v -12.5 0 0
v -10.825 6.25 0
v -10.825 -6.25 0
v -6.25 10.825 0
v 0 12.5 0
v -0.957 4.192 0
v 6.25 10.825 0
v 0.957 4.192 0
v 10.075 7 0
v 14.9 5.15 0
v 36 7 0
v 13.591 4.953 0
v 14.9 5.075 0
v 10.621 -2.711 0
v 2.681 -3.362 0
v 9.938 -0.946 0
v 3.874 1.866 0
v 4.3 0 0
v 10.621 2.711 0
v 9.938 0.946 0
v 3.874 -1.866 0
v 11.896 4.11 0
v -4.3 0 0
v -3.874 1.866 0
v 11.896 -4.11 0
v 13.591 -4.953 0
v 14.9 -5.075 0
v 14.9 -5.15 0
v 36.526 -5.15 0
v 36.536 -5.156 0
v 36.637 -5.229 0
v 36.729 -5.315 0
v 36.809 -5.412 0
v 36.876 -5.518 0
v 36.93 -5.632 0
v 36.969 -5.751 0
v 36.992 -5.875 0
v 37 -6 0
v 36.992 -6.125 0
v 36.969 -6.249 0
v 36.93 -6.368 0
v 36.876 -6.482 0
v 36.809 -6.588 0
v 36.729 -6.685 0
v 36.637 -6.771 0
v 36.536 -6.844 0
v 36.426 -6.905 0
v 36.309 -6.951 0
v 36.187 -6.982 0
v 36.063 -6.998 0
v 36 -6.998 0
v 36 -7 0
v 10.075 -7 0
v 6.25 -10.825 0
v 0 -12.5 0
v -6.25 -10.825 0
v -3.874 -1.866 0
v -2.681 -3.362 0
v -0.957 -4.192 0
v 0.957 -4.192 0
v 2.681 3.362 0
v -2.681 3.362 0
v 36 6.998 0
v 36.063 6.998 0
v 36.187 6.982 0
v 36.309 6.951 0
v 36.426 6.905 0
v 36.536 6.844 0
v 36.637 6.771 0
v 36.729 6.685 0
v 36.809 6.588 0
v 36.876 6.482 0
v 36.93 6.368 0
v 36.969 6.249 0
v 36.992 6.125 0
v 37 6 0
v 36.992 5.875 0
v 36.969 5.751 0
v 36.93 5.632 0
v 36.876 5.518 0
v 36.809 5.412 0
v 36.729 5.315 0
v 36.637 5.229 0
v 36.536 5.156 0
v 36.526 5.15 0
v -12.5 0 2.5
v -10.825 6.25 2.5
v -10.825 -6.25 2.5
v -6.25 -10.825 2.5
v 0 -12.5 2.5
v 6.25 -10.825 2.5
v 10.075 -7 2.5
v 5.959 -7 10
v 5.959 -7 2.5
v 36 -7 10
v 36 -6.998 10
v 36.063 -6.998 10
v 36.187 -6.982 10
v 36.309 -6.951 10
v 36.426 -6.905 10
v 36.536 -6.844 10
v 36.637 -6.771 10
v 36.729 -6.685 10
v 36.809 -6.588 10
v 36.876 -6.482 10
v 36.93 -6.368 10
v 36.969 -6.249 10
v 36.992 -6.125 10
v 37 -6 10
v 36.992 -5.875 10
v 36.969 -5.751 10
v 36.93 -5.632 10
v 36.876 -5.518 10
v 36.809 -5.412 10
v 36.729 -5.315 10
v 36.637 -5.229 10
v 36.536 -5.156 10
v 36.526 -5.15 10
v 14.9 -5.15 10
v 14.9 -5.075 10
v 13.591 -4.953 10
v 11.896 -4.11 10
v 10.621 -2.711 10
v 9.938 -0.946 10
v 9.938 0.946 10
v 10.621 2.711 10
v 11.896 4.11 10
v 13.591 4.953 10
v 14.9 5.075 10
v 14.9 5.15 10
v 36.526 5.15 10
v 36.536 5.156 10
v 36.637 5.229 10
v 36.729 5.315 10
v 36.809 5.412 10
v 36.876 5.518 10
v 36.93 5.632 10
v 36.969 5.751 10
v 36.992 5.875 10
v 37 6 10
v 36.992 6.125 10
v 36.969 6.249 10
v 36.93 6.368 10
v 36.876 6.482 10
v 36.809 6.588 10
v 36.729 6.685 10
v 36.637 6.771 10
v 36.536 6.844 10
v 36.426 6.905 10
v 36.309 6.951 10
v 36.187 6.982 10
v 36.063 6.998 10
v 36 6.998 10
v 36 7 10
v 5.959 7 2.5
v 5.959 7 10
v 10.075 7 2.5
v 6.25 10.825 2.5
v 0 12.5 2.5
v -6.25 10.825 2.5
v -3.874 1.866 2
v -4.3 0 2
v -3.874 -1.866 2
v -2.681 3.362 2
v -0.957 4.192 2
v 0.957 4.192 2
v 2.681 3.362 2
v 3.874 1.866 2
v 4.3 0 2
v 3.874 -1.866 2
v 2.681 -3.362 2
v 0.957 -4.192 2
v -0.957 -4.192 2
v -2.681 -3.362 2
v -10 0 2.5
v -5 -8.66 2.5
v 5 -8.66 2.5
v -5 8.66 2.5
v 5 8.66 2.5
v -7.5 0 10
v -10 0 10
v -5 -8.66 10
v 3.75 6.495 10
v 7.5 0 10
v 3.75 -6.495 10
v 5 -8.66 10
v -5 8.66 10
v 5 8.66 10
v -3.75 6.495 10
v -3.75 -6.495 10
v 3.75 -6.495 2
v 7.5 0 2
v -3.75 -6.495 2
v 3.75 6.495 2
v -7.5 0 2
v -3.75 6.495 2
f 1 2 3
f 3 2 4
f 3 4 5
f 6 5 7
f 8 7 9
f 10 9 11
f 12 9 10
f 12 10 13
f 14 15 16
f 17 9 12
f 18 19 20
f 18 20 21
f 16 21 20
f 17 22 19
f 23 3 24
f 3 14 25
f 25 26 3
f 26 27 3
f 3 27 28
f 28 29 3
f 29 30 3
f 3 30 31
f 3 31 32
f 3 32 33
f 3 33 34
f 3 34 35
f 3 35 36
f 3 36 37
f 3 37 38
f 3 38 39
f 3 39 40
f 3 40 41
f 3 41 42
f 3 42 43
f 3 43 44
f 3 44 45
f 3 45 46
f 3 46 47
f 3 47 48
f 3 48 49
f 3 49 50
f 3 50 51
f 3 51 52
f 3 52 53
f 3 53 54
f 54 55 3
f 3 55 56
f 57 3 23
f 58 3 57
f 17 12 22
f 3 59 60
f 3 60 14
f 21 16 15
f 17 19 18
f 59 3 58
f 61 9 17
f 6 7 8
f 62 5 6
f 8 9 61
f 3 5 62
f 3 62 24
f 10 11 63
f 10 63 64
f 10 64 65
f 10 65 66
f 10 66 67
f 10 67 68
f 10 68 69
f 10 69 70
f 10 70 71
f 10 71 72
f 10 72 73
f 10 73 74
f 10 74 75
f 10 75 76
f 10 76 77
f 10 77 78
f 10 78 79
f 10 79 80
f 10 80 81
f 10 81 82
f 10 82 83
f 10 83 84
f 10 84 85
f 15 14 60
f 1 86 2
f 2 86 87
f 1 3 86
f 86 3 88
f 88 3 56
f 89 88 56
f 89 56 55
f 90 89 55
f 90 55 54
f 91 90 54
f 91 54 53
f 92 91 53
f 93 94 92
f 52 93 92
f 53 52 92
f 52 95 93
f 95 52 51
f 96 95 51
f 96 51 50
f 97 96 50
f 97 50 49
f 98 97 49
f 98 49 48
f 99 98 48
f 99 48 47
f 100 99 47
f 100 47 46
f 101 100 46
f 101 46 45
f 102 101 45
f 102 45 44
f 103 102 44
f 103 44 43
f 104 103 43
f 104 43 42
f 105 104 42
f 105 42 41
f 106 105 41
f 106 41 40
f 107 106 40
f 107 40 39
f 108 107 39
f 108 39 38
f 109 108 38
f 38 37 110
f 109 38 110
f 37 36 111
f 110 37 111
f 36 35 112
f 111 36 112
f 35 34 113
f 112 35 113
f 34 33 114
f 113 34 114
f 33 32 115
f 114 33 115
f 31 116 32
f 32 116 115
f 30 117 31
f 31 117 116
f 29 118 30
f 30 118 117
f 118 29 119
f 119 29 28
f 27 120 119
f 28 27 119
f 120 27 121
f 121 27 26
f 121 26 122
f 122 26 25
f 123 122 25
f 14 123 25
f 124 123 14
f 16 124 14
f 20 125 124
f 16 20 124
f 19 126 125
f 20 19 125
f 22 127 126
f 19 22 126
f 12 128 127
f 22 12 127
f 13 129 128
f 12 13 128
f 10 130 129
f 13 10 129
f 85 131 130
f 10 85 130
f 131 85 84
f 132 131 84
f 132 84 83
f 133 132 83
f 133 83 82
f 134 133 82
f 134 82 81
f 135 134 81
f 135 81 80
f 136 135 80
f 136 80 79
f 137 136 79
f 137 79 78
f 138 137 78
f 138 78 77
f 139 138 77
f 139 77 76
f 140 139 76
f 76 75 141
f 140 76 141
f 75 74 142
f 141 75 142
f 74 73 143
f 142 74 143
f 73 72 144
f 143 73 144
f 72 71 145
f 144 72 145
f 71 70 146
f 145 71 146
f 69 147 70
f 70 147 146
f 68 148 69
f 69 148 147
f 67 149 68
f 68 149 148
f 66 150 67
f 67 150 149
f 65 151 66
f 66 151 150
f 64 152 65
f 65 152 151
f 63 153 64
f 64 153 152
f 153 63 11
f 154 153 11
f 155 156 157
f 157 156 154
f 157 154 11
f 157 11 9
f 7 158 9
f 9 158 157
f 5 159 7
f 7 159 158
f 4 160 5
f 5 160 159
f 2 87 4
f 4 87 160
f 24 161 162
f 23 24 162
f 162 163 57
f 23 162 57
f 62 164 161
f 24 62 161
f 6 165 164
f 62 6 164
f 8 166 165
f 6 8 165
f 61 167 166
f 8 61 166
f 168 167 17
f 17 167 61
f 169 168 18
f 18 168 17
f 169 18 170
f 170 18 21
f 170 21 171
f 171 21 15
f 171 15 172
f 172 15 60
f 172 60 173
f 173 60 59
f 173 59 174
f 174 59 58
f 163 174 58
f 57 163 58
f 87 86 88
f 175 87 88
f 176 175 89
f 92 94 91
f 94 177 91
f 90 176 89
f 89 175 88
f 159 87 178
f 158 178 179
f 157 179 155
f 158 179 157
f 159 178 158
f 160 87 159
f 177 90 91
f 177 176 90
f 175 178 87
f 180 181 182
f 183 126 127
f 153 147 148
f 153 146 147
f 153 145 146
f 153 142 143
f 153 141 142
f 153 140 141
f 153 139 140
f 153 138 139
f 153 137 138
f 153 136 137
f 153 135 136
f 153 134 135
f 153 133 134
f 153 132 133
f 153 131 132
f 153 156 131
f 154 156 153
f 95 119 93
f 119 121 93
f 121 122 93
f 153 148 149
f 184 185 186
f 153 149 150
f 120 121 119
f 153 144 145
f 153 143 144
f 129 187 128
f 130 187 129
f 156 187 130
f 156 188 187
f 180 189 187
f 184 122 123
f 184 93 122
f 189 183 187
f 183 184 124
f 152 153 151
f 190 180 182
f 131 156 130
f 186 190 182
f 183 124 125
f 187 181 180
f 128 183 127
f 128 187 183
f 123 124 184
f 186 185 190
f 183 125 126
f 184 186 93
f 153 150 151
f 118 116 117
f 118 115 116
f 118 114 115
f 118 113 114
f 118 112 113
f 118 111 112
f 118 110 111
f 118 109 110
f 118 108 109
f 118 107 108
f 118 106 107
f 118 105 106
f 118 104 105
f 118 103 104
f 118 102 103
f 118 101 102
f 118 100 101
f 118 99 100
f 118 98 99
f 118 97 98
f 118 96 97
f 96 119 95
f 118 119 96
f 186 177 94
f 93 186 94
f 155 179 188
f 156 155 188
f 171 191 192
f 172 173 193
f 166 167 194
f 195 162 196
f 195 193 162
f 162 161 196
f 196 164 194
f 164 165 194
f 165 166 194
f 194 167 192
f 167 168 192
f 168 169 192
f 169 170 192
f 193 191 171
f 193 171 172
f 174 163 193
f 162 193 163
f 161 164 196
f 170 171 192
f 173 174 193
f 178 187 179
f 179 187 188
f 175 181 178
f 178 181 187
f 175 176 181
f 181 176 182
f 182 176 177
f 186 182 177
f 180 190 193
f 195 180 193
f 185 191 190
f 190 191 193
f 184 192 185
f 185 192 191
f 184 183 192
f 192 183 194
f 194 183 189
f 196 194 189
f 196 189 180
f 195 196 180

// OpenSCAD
trap_height = 10;
nut_dia = 15;
clearance = .15;
z_rod_dia = 10;
screw_dia = 8;
thickness = 2;


difference(){
	union(){
		cylinder(h= trap_height, r=nut_dia/2 + 2.5, $fn=6);
		
		cylinder(h=2.5, r=nut_dia/2 + 5, $fn=12);
		translate([15, 0,0 ]){
			cylinder(h=trap_height, r=z_rod_dia/2 + 2);
		}
		translate([0,-(z_rod_dia + 2 * 2)/2],0)
			cube([20+15 + thickness/2, z_rod_dia + 2 * 2, trap_height]);
		
			translate([20 + 15 + thickness/2, z_rod_dia/2 + thickness/2, 0]){
				cylinder(h=trap_height, r=thickness / 2, $fn=50);
			}
			
			translate([20 + 15 + thickness/2, -(z_rod_dia/2 + thickness/2), 0]){
				cylinder(h=trap_height, r=thickness / 2, $fn=50);
			}
	}
	
	// cutout for rod w/ double clearance
	translate([0,0,-.1]) 
	cylinder(h=trap_height + .2, r=screw_dia/2 + clearance * 2);
	
	// cutout for nut
	translate([0,0,2]) 
	cylinder(h=trap_height + .2, r=nut_dia/2, $fn=6);
	
	// cutout for slide circle
	translate([15,0,-.1])
	cylinder(h=trap_height + .2, r=z_rod_dia/2 + clearance);
	
	// cutout for slide
	translate([20 - z_rod_dia/2 - .1, -(z_rod_dia + clearance * 2)/2,-.1])
	cube([15 + z_rod_dia, z_rod_dia + clearance * 2, trap_height + .2 + 10]);
}
